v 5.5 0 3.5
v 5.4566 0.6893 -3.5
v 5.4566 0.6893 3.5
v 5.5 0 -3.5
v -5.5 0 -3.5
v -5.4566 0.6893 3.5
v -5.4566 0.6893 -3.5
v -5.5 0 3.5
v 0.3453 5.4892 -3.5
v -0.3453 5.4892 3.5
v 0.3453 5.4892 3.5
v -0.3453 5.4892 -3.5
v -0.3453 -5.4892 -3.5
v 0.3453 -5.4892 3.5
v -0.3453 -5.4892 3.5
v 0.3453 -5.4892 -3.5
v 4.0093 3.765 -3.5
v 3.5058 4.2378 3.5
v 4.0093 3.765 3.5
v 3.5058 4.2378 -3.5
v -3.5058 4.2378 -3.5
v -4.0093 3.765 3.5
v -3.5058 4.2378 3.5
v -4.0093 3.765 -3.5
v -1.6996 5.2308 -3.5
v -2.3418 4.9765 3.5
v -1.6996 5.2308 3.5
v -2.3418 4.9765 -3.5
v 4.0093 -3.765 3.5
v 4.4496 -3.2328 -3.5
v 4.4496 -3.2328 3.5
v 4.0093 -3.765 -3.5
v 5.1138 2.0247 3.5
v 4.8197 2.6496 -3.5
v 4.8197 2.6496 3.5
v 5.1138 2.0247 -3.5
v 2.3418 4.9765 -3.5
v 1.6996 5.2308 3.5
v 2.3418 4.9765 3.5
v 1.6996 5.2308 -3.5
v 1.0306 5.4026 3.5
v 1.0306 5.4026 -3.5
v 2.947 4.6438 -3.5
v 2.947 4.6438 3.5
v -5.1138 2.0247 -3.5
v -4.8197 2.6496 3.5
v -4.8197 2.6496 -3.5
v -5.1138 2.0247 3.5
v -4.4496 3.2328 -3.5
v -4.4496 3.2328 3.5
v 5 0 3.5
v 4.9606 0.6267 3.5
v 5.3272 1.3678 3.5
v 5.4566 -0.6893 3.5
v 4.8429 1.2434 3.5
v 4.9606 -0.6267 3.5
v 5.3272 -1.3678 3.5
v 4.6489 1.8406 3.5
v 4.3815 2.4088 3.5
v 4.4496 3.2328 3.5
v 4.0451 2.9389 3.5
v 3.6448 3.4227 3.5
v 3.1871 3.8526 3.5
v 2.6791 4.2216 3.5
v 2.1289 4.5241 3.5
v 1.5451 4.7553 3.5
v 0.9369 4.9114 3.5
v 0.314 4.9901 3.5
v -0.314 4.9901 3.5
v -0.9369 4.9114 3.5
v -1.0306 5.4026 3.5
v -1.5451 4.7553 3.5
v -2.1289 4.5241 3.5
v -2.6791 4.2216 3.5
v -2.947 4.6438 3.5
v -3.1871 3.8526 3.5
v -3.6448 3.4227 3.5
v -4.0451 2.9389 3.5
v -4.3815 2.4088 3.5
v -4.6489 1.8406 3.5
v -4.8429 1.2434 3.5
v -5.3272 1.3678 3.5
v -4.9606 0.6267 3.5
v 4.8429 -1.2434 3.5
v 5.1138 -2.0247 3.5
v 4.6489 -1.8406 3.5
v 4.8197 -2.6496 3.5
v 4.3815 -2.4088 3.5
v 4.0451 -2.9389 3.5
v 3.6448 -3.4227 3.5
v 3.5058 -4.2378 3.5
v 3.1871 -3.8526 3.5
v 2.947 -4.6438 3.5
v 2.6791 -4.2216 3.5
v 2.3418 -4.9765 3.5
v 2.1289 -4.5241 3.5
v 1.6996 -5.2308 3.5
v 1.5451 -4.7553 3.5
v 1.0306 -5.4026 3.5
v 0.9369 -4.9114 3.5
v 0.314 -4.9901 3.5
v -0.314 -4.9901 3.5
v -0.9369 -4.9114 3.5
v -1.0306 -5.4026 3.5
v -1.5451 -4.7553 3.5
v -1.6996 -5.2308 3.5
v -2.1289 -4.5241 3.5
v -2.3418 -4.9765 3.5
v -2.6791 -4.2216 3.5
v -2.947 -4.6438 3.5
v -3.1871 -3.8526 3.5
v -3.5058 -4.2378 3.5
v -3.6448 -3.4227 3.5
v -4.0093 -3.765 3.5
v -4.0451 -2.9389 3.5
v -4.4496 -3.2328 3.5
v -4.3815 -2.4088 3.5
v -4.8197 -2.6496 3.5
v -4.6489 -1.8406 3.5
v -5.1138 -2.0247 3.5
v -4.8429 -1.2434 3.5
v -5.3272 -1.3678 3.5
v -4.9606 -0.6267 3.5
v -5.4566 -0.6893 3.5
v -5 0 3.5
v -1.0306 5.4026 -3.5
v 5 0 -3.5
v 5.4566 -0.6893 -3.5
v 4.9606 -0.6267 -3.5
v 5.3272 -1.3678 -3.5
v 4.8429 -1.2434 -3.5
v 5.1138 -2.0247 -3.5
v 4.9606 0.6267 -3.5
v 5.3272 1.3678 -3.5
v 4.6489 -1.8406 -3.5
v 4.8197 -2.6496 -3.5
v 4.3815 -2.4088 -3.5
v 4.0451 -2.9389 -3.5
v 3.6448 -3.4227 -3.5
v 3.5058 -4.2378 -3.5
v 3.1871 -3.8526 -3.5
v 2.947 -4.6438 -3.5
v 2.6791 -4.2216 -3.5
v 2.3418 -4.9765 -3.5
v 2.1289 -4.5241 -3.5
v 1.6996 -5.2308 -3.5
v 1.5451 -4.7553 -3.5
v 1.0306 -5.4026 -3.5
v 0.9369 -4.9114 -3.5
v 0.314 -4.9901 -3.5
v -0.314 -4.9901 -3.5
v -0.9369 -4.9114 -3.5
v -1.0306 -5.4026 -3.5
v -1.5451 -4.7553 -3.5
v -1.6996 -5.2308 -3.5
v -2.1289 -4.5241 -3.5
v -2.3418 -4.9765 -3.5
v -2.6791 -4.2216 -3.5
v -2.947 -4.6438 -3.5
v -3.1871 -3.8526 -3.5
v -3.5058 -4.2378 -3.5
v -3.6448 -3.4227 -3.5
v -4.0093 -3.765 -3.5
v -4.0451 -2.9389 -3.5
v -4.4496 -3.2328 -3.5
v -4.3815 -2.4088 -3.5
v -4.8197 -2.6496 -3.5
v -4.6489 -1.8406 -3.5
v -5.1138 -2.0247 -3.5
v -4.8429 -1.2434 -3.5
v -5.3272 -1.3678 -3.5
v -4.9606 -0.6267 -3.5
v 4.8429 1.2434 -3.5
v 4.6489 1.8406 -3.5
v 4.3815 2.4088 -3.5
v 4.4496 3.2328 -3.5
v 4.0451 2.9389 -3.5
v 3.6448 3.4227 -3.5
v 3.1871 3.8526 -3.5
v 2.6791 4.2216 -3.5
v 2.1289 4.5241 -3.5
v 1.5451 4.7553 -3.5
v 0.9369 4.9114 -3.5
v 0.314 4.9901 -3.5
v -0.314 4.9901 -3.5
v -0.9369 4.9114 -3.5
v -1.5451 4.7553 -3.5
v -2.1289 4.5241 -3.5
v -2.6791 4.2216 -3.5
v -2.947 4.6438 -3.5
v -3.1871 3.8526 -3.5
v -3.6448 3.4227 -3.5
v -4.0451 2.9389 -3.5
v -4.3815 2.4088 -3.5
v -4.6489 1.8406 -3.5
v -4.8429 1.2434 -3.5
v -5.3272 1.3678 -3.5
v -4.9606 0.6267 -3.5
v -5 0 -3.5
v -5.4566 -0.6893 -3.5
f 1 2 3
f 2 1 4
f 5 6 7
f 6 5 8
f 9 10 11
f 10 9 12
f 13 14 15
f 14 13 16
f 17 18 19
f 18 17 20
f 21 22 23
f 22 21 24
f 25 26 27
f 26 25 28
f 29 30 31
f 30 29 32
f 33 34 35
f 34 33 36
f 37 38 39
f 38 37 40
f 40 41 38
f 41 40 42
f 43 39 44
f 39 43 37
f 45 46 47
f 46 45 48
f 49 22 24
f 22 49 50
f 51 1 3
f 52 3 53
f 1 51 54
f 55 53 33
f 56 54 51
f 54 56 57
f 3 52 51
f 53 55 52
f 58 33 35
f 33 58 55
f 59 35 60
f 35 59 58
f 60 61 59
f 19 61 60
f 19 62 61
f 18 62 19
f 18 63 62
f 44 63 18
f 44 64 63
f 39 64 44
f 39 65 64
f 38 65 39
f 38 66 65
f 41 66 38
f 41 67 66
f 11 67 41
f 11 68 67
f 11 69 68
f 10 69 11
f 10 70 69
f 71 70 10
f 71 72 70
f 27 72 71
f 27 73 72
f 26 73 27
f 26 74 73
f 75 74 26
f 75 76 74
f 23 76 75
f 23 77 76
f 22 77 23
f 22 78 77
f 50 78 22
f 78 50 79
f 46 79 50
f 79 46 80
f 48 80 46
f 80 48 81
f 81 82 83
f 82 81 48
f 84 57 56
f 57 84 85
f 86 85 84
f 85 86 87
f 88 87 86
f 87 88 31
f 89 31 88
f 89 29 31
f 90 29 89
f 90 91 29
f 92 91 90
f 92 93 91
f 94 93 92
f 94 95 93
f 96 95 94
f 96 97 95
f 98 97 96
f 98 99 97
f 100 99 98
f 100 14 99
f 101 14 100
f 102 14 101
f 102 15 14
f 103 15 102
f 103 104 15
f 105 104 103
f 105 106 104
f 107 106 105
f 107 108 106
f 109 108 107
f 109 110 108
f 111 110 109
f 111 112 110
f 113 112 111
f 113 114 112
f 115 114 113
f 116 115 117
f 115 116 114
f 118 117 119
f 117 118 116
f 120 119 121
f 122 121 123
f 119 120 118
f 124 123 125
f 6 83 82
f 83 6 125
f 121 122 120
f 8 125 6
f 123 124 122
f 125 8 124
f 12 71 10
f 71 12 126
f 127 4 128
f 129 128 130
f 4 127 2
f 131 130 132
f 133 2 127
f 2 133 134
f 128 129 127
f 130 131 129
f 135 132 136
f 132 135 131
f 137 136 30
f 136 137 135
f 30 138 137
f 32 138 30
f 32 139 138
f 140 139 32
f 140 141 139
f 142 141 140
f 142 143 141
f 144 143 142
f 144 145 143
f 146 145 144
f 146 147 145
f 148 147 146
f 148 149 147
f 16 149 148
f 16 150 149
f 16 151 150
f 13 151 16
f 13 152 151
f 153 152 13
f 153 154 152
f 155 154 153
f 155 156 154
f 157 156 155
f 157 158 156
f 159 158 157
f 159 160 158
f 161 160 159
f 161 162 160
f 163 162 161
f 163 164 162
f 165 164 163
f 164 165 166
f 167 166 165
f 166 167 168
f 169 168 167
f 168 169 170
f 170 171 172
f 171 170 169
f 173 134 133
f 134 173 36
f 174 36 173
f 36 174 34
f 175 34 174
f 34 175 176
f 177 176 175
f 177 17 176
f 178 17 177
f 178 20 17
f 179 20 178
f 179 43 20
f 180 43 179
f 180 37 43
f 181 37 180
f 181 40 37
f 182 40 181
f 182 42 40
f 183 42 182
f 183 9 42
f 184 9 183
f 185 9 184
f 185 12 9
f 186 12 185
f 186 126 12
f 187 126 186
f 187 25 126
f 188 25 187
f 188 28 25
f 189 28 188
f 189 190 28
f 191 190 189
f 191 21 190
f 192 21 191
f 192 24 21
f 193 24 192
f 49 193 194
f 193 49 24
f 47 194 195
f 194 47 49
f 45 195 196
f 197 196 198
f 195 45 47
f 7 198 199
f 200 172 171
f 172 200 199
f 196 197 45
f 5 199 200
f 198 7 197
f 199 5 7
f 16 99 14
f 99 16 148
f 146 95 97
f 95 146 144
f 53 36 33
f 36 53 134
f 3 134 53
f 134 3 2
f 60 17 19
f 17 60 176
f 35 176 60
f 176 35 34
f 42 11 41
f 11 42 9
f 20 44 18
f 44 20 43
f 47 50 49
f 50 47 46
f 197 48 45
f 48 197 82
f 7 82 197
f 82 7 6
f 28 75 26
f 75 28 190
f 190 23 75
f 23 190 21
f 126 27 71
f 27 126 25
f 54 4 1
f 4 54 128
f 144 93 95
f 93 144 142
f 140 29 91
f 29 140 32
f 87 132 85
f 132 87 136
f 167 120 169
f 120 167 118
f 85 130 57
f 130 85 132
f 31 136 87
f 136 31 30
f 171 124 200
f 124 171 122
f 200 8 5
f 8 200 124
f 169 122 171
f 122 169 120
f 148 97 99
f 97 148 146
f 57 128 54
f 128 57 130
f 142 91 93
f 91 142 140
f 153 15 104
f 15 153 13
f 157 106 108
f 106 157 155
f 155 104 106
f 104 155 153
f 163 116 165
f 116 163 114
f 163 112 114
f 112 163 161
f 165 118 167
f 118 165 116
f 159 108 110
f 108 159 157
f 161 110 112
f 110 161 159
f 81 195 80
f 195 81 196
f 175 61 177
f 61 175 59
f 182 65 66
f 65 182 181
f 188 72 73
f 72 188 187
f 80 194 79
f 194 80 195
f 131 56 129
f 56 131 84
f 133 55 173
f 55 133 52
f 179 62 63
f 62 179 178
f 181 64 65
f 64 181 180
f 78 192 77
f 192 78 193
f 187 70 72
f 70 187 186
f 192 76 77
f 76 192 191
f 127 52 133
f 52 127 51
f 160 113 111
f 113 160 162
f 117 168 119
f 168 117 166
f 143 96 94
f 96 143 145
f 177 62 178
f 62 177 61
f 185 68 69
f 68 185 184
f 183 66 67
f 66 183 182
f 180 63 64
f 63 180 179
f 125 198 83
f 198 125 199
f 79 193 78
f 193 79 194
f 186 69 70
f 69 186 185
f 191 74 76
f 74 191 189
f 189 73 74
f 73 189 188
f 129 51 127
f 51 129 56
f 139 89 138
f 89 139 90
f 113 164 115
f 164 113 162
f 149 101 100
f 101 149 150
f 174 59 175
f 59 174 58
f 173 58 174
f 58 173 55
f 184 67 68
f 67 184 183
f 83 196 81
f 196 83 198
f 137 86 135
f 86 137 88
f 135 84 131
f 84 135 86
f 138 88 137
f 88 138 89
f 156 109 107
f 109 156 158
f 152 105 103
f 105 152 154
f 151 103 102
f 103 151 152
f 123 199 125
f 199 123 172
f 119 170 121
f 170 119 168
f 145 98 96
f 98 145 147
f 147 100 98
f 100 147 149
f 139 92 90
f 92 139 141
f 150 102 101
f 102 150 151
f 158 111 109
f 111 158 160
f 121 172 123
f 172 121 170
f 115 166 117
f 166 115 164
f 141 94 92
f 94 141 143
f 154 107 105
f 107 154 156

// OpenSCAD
$fn = 50;


difference() {
	union() {
		translate(v = [0, 0, -3.5000000000]) {
			cylinder(h = 7, r = 5.5000000000);
		}
	}
	union() {
		translate(v = [0, 0, -100.0000000000]) {
			cylinder(h = 200, r = 5);
		}
	}
}
